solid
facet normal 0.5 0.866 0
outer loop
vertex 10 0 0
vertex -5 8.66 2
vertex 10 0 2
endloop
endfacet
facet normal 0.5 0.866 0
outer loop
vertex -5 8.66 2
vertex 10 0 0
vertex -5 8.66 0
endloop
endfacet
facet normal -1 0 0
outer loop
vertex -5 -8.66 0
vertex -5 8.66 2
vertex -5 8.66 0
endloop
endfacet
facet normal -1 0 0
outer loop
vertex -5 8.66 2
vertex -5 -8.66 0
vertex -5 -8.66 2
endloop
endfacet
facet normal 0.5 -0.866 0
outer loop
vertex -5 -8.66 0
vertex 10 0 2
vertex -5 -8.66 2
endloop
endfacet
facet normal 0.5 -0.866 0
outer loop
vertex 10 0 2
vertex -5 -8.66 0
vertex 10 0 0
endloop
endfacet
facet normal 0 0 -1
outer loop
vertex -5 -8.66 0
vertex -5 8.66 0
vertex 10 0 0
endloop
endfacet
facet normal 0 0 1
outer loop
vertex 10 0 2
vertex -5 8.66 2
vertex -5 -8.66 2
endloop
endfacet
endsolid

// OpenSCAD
//arrow

module arrow(){
    cylinder(r=10, h=2, $fn=3);
}

arrow();
